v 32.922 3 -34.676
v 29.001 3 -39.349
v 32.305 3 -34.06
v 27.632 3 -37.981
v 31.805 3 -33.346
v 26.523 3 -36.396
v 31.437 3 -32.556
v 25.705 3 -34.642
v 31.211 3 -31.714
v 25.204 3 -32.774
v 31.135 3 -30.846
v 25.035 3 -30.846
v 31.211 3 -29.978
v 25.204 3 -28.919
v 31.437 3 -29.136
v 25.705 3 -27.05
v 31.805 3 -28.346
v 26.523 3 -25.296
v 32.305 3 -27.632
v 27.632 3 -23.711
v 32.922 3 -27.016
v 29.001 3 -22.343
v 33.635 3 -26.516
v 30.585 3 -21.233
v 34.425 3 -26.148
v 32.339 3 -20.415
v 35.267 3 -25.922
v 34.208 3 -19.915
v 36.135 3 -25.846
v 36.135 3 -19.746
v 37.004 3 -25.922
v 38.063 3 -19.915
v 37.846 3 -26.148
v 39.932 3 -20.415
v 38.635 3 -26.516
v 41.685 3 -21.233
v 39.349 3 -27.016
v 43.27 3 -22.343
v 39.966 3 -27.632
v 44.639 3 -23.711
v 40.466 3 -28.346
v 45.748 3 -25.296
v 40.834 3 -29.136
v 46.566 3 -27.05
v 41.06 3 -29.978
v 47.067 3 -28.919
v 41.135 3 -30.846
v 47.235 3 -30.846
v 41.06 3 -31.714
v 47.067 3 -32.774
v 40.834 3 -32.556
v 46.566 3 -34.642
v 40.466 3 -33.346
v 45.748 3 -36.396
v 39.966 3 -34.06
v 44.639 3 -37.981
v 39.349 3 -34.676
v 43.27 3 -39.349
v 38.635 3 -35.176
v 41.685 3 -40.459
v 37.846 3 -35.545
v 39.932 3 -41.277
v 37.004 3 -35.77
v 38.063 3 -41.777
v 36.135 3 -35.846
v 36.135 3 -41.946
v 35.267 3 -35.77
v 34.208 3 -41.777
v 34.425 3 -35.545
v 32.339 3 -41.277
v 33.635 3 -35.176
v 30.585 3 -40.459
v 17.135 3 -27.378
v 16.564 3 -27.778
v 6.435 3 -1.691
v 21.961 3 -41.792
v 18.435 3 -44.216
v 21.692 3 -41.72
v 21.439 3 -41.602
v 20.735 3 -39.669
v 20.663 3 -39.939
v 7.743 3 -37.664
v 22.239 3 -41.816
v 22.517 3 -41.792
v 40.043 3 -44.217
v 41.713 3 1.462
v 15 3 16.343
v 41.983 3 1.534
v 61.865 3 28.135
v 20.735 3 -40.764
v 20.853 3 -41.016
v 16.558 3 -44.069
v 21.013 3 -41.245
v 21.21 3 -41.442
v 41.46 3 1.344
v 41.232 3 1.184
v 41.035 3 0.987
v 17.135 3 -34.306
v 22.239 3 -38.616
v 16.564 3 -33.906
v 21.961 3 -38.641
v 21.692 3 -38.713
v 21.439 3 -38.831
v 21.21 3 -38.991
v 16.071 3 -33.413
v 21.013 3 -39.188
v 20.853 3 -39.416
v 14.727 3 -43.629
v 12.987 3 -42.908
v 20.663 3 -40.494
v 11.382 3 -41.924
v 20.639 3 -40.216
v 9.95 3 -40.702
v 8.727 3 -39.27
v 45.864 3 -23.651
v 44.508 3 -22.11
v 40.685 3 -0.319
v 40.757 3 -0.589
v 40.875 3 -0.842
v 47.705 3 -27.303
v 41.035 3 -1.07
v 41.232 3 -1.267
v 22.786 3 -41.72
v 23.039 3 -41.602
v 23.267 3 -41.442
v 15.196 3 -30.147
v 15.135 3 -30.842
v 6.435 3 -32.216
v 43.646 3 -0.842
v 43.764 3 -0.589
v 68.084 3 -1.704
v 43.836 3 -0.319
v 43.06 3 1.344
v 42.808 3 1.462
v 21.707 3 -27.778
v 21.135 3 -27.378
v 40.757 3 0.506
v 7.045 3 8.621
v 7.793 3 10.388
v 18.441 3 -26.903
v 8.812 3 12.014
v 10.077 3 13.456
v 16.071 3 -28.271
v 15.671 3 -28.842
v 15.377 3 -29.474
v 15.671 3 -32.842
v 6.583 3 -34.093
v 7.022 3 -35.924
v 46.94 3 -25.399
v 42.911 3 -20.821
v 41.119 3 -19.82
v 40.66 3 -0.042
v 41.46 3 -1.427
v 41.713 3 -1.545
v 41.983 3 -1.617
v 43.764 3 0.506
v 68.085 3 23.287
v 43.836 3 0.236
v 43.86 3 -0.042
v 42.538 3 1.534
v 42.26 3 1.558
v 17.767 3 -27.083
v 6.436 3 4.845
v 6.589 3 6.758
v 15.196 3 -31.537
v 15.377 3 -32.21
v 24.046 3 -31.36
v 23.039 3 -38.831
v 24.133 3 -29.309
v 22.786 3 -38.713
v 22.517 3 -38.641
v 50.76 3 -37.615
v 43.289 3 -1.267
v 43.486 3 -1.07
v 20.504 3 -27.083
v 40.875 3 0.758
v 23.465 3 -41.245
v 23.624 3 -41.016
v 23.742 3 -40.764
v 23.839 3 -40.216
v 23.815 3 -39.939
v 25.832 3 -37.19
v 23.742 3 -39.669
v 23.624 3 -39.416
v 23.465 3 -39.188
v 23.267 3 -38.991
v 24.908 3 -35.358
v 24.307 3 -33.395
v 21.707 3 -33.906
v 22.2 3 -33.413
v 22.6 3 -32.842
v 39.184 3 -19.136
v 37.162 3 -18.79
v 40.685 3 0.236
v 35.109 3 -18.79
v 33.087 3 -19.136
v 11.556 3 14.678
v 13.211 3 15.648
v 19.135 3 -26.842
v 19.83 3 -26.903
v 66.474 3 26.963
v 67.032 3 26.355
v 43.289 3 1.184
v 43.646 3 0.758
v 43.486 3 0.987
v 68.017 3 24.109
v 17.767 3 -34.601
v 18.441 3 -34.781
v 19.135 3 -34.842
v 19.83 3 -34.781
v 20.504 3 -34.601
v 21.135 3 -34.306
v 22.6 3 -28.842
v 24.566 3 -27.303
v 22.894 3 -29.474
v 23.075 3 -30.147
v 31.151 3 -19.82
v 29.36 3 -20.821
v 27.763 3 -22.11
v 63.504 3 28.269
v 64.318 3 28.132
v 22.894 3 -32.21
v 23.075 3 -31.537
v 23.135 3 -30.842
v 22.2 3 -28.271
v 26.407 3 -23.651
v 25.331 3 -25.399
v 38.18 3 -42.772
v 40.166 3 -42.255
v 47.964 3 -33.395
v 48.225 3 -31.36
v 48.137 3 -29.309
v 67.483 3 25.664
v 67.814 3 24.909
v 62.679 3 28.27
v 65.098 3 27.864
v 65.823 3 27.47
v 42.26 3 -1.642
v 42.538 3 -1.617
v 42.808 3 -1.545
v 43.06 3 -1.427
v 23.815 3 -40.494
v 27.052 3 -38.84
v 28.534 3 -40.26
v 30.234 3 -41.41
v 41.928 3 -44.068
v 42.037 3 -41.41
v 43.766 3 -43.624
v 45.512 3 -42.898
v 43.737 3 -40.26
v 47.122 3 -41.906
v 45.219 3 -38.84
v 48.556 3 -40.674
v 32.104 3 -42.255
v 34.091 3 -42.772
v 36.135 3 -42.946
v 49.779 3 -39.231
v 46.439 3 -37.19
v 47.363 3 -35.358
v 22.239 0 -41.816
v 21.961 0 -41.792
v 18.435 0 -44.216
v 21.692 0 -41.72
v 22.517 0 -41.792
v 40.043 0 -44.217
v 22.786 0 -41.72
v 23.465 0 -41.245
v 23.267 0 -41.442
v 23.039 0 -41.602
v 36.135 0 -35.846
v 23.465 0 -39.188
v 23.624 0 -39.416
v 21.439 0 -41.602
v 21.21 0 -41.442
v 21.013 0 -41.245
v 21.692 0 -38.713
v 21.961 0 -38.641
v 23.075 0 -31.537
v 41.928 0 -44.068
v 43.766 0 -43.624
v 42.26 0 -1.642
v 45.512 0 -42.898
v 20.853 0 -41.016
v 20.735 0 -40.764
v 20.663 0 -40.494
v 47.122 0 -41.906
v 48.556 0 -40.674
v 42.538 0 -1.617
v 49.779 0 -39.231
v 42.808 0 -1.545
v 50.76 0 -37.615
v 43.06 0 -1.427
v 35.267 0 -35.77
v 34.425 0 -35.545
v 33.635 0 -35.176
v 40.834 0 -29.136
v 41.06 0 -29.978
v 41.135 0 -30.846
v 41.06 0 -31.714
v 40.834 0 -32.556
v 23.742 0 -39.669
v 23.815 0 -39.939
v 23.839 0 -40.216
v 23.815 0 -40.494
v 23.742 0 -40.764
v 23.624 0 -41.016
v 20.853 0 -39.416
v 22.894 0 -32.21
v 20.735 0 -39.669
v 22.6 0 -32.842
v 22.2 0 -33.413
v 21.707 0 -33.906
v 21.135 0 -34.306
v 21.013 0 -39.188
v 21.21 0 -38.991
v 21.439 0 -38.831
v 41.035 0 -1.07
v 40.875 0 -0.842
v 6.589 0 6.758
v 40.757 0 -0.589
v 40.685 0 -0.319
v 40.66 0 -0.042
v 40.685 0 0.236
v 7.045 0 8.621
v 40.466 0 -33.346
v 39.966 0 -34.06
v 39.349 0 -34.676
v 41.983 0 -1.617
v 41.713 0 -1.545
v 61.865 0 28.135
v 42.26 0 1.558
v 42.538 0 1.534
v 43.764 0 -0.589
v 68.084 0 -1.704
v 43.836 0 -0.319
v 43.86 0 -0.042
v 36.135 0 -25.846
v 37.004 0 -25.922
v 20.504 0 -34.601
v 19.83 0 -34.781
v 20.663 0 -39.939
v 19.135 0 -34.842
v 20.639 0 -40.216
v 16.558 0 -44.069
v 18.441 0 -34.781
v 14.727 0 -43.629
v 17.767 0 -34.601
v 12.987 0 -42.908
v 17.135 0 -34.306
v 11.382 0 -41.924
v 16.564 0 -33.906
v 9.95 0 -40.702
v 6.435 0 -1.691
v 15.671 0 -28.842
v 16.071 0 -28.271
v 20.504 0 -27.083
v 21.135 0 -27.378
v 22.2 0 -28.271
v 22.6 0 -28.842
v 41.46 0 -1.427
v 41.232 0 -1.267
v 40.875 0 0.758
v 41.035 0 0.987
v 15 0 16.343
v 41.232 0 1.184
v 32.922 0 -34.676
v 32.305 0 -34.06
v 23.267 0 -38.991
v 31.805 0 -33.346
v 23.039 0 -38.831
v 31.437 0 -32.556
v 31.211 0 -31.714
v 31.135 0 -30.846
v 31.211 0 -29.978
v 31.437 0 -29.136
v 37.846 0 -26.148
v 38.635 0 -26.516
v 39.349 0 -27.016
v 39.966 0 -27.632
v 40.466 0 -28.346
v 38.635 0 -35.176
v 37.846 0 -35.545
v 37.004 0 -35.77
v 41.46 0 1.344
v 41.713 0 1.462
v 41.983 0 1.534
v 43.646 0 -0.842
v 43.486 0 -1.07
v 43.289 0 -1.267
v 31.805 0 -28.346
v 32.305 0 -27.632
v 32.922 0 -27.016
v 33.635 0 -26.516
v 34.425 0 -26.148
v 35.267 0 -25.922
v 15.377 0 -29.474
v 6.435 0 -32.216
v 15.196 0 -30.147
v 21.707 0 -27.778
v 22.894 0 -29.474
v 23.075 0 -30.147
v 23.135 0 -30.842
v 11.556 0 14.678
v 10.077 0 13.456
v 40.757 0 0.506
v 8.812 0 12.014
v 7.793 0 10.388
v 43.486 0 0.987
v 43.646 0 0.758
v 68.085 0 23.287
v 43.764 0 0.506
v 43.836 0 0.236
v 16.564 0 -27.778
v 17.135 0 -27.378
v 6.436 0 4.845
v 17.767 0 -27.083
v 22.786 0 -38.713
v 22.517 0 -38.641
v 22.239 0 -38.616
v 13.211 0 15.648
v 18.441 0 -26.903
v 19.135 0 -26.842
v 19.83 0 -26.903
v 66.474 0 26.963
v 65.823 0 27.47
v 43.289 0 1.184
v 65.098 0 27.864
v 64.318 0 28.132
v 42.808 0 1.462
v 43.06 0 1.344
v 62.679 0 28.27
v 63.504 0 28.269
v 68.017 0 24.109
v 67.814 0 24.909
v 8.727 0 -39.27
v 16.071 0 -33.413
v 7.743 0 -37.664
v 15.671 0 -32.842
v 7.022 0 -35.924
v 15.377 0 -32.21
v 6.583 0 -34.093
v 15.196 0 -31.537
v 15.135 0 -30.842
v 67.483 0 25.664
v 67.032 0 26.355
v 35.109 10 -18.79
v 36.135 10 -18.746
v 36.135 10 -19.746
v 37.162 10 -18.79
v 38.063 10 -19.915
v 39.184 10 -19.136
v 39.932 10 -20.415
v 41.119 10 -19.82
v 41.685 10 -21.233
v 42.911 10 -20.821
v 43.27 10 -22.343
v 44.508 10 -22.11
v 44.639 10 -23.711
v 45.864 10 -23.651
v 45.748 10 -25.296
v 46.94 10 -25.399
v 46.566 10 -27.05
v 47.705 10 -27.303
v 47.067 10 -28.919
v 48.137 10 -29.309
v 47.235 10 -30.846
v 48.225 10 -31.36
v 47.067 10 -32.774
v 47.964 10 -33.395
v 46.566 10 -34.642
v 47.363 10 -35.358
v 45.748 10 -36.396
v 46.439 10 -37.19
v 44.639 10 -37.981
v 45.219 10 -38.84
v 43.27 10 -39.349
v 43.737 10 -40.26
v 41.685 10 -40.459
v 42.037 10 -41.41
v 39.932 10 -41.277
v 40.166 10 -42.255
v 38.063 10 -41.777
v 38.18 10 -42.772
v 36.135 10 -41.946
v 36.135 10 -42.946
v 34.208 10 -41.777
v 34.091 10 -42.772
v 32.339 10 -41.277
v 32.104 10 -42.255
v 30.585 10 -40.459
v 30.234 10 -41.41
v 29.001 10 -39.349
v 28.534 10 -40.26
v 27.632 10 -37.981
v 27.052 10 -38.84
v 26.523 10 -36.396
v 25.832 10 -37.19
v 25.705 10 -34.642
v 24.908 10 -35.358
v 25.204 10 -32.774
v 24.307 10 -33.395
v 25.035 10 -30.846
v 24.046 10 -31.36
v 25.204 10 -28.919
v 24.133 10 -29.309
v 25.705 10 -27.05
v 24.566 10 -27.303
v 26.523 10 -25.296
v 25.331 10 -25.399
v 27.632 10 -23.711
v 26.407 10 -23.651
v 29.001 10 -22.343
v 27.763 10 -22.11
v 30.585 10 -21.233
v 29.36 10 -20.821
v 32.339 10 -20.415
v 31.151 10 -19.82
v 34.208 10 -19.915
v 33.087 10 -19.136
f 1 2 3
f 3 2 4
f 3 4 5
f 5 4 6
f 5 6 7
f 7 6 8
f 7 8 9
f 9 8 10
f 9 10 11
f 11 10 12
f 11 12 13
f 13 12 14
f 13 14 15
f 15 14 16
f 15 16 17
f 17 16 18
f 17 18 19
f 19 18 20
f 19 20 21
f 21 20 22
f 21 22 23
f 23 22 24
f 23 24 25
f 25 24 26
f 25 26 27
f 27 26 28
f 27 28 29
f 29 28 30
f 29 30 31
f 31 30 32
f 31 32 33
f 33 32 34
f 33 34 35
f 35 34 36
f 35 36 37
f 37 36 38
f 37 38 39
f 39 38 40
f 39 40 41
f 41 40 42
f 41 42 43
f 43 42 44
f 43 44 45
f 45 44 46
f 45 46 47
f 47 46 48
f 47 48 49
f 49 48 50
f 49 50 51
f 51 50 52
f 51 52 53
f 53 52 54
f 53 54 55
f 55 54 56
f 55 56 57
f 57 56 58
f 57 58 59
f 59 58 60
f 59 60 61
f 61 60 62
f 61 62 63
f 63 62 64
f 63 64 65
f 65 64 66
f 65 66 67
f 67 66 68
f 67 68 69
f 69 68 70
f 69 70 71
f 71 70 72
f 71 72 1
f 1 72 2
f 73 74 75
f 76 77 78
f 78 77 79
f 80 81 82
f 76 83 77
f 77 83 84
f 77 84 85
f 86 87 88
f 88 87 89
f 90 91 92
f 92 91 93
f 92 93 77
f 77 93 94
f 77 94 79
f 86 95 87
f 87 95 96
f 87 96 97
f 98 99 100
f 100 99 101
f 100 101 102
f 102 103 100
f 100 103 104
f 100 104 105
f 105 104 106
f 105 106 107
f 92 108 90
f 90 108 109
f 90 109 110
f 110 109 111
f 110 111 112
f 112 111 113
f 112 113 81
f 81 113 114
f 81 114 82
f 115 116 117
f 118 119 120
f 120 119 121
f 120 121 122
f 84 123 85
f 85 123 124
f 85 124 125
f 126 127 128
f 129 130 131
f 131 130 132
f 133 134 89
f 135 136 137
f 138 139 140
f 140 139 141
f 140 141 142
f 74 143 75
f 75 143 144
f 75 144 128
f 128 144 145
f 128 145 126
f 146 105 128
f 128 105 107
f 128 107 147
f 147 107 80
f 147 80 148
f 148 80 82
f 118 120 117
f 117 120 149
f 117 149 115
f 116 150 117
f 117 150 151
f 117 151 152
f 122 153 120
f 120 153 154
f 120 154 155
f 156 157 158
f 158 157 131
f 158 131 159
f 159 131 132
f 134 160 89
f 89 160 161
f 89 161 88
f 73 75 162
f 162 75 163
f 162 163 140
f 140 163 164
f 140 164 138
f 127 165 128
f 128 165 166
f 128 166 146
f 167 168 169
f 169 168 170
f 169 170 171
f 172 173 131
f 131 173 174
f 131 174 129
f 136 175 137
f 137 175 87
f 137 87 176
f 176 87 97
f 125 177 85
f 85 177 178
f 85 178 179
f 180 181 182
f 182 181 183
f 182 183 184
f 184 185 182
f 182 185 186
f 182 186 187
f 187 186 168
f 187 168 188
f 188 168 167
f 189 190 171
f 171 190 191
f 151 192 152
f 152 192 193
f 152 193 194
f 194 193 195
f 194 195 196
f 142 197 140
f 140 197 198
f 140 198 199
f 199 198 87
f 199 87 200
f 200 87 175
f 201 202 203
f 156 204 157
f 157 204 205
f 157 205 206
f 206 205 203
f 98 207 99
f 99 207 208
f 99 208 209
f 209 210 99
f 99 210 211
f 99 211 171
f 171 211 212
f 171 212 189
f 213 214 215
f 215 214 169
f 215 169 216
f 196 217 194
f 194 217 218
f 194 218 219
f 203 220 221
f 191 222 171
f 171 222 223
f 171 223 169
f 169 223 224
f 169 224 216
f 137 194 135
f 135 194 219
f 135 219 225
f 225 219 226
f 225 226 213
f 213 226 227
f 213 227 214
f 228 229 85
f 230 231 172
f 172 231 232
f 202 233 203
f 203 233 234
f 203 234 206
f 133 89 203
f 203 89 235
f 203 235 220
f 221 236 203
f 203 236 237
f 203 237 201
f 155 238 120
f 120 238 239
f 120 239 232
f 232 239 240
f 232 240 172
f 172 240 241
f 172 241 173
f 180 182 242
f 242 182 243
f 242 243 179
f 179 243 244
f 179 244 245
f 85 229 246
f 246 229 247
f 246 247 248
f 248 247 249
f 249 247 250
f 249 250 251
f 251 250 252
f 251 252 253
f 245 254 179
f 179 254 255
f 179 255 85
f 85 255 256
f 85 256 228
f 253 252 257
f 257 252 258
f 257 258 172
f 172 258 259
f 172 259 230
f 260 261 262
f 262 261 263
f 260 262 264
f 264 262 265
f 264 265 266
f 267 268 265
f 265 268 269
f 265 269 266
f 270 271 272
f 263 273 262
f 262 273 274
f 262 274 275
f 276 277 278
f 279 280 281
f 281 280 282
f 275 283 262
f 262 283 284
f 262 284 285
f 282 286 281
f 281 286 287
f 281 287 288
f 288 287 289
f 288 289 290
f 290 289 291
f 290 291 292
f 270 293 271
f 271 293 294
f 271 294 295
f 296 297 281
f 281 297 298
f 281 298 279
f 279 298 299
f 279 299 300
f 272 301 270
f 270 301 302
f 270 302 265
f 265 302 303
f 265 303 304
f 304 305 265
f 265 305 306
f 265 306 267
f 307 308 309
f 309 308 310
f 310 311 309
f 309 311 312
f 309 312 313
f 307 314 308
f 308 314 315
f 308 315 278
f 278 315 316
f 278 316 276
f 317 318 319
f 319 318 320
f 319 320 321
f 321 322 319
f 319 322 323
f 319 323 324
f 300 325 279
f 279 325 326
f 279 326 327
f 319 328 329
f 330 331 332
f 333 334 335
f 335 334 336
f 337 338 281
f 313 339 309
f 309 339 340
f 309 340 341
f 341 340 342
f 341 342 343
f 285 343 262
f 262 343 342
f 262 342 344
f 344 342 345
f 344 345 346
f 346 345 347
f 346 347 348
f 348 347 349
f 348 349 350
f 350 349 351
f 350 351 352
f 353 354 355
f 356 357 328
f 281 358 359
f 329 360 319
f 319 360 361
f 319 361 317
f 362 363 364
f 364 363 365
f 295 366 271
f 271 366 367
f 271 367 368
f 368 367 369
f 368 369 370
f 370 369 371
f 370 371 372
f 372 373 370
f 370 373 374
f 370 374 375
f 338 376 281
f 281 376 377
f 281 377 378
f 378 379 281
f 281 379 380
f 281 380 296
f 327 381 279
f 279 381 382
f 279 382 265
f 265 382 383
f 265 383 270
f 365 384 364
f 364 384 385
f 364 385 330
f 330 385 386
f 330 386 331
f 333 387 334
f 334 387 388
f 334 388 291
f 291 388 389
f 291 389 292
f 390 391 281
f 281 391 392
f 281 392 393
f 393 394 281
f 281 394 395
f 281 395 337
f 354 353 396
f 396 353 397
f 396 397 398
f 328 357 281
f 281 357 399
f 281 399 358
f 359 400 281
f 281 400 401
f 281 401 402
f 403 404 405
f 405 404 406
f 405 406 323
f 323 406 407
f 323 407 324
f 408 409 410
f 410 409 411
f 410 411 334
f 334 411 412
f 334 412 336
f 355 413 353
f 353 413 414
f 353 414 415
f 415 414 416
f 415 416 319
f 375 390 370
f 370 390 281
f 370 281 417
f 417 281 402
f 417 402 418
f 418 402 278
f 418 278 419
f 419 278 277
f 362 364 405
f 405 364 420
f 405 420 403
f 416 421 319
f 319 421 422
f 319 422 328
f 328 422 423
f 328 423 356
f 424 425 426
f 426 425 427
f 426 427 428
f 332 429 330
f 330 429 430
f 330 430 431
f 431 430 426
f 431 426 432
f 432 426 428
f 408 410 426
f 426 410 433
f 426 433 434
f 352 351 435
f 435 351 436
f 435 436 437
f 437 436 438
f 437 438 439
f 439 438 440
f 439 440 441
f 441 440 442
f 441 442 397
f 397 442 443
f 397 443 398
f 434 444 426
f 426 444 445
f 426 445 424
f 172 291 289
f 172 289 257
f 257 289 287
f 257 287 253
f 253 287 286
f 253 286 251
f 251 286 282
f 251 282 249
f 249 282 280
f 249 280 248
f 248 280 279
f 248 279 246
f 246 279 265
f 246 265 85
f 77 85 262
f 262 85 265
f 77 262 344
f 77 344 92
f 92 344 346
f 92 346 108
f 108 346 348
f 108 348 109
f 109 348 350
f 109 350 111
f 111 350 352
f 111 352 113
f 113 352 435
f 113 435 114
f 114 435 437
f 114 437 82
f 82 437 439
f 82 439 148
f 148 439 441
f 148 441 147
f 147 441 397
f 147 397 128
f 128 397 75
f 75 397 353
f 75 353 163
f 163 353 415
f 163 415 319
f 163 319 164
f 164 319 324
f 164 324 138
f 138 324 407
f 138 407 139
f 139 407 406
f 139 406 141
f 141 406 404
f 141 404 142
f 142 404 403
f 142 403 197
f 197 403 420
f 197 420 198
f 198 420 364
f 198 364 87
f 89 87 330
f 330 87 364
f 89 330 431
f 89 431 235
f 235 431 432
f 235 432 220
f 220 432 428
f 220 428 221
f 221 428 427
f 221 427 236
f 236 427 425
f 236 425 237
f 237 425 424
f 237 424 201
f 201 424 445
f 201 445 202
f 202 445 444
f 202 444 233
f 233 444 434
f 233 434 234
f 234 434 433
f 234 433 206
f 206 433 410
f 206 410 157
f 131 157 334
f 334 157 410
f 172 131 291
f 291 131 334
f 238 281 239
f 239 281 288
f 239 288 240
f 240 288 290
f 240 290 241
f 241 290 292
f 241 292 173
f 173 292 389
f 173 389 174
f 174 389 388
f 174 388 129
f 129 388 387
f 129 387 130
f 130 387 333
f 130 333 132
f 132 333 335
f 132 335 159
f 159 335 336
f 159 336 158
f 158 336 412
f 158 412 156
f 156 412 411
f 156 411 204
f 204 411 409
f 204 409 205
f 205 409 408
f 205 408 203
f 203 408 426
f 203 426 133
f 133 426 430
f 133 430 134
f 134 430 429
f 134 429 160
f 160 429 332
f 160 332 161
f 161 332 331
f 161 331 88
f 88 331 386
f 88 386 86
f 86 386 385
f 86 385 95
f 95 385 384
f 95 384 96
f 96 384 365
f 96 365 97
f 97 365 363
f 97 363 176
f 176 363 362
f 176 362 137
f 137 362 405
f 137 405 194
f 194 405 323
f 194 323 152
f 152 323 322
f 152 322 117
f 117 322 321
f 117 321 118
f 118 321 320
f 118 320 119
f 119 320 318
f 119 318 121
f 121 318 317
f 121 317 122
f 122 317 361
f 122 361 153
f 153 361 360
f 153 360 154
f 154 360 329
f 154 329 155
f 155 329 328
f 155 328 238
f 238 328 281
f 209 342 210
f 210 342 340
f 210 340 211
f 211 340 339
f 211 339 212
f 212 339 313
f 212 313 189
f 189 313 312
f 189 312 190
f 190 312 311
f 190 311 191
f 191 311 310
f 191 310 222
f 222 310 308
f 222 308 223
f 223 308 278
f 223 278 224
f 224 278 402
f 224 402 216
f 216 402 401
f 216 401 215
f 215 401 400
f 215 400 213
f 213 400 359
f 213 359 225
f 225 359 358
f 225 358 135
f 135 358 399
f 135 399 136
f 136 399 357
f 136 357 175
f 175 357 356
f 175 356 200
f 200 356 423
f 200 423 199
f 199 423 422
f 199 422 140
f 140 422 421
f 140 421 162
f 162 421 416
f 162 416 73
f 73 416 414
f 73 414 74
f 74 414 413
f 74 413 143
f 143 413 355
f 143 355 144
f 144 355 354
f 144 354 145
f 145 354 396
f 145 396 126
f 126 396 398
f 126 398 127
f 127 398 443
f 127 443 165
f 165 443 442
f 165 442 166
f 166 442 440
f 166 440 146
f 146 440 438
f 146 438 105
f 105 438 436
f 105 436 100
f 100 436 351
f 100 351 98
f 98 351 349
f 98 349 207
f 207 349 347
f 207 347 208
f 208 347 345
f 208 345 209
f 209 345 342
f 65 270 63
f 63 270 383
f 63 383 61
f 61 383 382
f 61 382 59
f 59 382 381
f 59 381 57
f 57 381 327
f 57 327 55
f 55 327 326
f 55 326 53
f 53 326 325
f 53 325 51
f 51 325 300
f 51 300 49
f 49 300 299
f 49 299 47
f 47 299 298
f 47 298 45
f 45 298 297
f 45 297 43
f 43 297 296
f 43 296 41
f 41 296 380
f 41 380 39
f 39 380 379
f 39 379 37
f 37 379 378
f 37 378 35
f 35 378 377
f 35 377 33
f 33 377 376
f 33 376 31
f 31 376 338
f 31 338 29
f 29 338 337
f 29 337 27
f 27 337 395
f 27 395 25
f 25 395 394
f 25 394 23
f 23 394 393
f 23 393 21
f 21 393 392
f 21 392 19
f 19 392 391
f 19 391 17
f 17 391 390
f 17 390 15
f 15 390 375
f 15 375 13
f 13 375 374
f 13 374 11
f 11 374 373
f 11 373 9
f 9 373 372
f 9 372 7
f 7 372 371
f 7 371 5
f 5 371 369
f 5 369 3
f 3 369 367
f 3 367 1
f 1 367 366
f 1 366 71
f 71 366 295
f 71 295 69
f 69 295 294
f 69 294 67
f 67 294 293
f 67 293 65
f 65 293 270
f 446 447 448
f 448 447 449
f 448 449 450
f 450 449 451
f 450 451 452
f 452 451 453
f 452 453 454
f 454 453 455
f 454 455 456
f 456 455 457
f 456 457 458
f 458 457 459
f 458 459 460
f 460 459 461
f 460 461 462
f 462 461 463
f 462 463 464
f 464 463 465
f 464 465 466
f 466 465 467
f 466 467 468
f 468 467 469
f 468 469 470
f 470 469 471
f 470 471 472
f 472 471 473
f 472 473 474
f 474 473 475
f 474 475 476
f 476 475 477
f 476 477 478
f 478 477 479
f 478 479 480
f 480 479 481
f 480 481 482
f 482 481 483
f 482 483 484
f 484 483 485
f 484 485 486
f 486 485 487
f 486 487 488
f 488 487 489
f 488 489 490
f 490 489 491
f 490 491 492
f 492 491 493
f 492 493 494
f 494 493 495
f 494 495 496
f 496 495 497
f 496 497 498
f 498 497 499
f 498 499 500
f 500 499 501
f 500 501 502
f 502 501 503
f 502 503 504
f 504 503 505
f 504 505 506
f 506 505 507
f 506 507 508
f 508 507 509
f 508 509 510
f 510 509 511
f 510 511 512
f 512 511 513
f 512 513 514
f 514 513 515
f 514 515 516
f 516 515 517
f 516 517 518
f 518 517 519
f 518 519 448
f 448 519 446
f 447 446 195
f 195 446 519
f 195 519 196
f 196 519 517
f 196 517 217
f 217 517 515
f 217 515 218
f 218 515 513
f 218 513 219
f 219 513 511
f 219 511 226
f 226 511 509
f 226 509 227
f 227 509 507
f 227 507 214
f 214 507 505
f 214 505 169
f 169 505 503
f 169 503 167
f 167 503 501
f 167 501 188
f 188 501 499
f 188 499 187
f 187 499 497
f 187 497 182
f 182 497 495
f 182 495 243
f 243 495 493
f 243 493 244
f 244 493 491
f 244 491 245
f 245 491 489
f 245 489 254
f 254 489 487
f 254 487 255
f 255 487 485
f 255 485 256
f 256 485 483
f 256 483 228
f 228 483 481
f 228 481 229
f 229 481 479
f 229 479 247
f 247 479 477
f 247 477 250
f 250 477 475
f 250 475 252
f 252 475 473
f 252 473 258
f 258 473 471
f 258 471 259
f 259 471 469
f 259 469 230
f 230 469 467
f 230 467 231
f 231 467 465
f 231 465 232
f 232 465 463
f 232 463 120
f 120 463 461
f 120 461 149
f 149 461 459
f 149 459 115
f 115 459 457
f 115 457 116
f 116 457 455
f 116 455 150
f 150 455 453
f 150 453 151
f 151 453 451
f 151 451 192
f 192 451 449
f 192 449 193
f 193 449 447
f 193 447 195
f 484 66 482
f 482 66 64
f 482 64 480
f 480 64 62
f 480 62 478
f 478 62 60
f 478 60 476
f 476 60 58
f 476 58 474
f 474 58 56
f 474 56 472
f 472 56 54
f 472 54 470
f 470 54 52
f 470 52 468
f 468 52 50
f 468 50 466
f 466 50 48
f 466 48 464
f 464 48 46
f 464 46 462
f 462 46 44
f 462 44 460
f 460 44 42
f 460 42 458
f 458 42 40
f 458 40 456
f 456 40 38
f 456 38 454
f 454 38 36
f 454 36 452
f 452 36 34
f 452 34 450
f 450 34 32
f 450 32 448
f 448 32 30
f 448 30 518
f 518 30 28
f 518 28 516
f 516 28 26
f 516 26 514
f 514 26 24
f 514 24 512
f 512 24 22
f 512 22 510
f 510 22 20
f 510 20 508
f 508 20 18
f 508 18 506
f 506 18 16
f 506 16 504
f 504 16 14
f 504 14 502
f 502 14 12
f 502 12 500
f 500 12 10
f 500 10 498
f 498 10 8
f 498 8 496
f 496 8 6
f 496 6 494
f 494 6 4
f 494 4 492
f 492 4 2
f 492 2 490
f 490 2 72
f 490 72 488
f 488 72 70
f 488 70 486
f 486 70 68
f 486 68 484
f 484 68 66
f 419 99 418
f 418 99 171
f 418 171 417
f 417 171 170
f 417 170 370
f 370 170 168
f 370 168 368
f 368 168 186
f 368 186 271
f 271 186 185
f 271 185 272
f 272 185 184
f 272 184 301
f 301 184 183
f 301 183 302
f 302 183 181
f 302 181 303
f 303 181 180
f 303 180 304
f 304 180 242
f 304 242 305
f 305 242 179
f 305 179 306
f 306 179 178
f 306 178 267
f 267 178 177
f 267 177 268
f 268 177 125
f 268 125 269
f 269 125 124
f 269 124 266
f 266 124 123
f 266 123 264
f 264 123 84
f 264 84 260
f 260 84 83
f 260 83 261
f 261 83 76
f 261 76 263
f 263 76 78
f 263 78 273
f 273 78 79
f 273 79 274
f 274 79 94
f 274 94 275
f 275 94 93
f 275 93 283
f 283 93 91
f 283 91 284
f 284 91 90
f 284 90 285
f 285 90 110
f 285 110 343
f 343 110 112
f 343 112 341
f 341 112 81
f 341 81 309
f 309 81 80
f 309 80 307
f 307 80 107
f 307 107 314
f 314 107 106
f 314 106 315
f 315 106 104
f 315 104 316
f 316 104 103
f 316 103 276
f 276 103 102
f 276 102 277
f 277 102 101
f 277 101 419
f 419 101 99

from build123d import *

# Parameters (mm, degrees)
IZIM1_R                     = 1.6
IZIM1_R_2                   = 4
IZIM1_R_3                   = 5
Y_KSEKLIK_EKSTR_ZYON1_DEPTH = 3
IZIM2_R                     = 12.1
IZIM2_R_2                   = 11.1
Y_KSEKLIK_EKSTR_ZYON2_DEPTH = 7
IZIM3_R                     = 1.6
KES_EKSTR_ZYON1_DEPTH       = 82.48402276


with BuildPart() as part:
    # Çizim1 → Yükseklik-Ekstrüzyon1 (new body)
    with BuildSketch(Plane(origin=(0, 0, 0), x_dir=(1, 0, 0), z_dir=(0, 1, 0))):
        with BuildLine():
            Line((50.760204115, 37.614624087), (68.08430001, 1.70394254))
            Line((68.08430001, 1.70394254), (68.084798737, -23.286510722))
            ThreePointArc((68.084798737, -23.286510722), (66.158877099, -27.229964111), (61.864685641, -28.135457628))
            Line((61.864685641, -28.135457628), (14.999890892, -16.342900955))
            ThreePointArc((14.999890892, -16.342900955), (8.811960476, -12.013704596), (6.435524315, -4.845373191))
            Line((6.435524315, -4.845373191), (6.435446445, 1.690953534))
            Line((6.435446445, 1.690953534), (6.435084331, 32.216193937))
            ThreePointArc((6.435084331, 32.216193937), (9.949698543, 40.701509037), (18.434929969, 44.216325258))
            Line((18.434929969, 44.216325258), (40.042732612, 44.21658225))
            ThreePointArc((40.042732612, 44.21658225), (46.336600804, 42.433676297), (50.760204115, 37.614624087))
        make_face()
        with Locations(Location((42.260458863, 0.041620293, 0), (0, 0, 90))):
            Circle(IZIM1_R, mode=Mode.SUBTRACT)
        with Locations(Location((19.13547597, 30.841945567, 0), (0, 0, 90))):
            Circle(IZIM1_R_2, mode=Mode.SUBTRACT)
        with Locations(Location((36.135474475, 30.846047168, 0), (0, 0, 90))):
            Circle(IZIM1_R_3, mode=Mode.SUBTRACT)
    extrude(amount=Y_KSEKLIK_EKSTR_ZYON1_DEPTH)

    # Çizim2 → Yükseklik-Ekstrüzyon2 (add)
    with BuildSketch(Plane(origin=(0, 3, 0), x_dir=(1, 0, 0), z_dir=(0, 1, 0))):
        with Locations(Location((36.135474475, 30.846047168, 0), (0, 0, 90))):
            Circle(IZIM2_R)
        with Locations(Location((36.135474475, 30.846047168, 0), (0, 0, 270))):
            Circle(IZIM2_R_2, mode=Mode.SUBTRACT)
    extrude(amount=Y_KSEKLIK_EKSTR_ZYON2_DEPTH)

    # Çizim3 → Kes-Ekstrüzyon1 (cut, through all)
    with BuildSketch(Plane(origin=(0, 3, 0), x_dir=(1, 0, 0), z_dir=(0, 1, 0))):
        with Locations(Location((22.23883129, 40.216370499, 0), (0, 0, 270))):
            Circle(IZIM3_R)
    extrude(amount=-KES_EKSTR_ZYON1_DEPTH, mode=Mode.SUBTRACT)


solid = part.part
